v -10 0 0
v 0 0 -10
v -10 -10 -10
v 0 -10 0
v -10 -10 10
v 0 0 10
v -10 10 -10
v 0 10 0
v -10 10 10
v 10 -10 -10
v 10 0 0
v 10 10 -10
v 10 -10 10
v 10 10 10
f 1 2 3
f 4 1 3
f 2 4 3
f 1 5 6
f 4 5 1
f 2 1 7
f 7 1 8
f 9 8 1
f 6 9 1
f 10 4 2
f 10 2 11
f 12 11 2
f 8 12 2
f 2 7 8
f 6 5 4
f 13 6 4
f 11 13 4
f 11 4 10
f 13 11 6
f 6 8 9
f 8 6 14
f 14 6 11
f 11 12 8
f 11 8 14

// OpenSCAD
module tetrastar()
{
	l = 10;
	union() {

		polyhedron(
			points = [
				[l, -l, -l],
				[-l, l, -l],
				[-l, -l, l],
				[l, l, l]
			],
			triangles = [
				[0,1,2],
				[1,0,3],
				[0,2,3],
				[1,3,2]
			]
		);
		polyhedron(
			points = [
				[l, -l, l],
				[-l, l, l],
				[-l, -l, -l],
				[l, l, -l]
			],
			triangles = [
				[0,1,2],
				[1,0,3],
				[0,2,3],
				[1,3,2]
			]
		);
	}
}

tetrastar();
